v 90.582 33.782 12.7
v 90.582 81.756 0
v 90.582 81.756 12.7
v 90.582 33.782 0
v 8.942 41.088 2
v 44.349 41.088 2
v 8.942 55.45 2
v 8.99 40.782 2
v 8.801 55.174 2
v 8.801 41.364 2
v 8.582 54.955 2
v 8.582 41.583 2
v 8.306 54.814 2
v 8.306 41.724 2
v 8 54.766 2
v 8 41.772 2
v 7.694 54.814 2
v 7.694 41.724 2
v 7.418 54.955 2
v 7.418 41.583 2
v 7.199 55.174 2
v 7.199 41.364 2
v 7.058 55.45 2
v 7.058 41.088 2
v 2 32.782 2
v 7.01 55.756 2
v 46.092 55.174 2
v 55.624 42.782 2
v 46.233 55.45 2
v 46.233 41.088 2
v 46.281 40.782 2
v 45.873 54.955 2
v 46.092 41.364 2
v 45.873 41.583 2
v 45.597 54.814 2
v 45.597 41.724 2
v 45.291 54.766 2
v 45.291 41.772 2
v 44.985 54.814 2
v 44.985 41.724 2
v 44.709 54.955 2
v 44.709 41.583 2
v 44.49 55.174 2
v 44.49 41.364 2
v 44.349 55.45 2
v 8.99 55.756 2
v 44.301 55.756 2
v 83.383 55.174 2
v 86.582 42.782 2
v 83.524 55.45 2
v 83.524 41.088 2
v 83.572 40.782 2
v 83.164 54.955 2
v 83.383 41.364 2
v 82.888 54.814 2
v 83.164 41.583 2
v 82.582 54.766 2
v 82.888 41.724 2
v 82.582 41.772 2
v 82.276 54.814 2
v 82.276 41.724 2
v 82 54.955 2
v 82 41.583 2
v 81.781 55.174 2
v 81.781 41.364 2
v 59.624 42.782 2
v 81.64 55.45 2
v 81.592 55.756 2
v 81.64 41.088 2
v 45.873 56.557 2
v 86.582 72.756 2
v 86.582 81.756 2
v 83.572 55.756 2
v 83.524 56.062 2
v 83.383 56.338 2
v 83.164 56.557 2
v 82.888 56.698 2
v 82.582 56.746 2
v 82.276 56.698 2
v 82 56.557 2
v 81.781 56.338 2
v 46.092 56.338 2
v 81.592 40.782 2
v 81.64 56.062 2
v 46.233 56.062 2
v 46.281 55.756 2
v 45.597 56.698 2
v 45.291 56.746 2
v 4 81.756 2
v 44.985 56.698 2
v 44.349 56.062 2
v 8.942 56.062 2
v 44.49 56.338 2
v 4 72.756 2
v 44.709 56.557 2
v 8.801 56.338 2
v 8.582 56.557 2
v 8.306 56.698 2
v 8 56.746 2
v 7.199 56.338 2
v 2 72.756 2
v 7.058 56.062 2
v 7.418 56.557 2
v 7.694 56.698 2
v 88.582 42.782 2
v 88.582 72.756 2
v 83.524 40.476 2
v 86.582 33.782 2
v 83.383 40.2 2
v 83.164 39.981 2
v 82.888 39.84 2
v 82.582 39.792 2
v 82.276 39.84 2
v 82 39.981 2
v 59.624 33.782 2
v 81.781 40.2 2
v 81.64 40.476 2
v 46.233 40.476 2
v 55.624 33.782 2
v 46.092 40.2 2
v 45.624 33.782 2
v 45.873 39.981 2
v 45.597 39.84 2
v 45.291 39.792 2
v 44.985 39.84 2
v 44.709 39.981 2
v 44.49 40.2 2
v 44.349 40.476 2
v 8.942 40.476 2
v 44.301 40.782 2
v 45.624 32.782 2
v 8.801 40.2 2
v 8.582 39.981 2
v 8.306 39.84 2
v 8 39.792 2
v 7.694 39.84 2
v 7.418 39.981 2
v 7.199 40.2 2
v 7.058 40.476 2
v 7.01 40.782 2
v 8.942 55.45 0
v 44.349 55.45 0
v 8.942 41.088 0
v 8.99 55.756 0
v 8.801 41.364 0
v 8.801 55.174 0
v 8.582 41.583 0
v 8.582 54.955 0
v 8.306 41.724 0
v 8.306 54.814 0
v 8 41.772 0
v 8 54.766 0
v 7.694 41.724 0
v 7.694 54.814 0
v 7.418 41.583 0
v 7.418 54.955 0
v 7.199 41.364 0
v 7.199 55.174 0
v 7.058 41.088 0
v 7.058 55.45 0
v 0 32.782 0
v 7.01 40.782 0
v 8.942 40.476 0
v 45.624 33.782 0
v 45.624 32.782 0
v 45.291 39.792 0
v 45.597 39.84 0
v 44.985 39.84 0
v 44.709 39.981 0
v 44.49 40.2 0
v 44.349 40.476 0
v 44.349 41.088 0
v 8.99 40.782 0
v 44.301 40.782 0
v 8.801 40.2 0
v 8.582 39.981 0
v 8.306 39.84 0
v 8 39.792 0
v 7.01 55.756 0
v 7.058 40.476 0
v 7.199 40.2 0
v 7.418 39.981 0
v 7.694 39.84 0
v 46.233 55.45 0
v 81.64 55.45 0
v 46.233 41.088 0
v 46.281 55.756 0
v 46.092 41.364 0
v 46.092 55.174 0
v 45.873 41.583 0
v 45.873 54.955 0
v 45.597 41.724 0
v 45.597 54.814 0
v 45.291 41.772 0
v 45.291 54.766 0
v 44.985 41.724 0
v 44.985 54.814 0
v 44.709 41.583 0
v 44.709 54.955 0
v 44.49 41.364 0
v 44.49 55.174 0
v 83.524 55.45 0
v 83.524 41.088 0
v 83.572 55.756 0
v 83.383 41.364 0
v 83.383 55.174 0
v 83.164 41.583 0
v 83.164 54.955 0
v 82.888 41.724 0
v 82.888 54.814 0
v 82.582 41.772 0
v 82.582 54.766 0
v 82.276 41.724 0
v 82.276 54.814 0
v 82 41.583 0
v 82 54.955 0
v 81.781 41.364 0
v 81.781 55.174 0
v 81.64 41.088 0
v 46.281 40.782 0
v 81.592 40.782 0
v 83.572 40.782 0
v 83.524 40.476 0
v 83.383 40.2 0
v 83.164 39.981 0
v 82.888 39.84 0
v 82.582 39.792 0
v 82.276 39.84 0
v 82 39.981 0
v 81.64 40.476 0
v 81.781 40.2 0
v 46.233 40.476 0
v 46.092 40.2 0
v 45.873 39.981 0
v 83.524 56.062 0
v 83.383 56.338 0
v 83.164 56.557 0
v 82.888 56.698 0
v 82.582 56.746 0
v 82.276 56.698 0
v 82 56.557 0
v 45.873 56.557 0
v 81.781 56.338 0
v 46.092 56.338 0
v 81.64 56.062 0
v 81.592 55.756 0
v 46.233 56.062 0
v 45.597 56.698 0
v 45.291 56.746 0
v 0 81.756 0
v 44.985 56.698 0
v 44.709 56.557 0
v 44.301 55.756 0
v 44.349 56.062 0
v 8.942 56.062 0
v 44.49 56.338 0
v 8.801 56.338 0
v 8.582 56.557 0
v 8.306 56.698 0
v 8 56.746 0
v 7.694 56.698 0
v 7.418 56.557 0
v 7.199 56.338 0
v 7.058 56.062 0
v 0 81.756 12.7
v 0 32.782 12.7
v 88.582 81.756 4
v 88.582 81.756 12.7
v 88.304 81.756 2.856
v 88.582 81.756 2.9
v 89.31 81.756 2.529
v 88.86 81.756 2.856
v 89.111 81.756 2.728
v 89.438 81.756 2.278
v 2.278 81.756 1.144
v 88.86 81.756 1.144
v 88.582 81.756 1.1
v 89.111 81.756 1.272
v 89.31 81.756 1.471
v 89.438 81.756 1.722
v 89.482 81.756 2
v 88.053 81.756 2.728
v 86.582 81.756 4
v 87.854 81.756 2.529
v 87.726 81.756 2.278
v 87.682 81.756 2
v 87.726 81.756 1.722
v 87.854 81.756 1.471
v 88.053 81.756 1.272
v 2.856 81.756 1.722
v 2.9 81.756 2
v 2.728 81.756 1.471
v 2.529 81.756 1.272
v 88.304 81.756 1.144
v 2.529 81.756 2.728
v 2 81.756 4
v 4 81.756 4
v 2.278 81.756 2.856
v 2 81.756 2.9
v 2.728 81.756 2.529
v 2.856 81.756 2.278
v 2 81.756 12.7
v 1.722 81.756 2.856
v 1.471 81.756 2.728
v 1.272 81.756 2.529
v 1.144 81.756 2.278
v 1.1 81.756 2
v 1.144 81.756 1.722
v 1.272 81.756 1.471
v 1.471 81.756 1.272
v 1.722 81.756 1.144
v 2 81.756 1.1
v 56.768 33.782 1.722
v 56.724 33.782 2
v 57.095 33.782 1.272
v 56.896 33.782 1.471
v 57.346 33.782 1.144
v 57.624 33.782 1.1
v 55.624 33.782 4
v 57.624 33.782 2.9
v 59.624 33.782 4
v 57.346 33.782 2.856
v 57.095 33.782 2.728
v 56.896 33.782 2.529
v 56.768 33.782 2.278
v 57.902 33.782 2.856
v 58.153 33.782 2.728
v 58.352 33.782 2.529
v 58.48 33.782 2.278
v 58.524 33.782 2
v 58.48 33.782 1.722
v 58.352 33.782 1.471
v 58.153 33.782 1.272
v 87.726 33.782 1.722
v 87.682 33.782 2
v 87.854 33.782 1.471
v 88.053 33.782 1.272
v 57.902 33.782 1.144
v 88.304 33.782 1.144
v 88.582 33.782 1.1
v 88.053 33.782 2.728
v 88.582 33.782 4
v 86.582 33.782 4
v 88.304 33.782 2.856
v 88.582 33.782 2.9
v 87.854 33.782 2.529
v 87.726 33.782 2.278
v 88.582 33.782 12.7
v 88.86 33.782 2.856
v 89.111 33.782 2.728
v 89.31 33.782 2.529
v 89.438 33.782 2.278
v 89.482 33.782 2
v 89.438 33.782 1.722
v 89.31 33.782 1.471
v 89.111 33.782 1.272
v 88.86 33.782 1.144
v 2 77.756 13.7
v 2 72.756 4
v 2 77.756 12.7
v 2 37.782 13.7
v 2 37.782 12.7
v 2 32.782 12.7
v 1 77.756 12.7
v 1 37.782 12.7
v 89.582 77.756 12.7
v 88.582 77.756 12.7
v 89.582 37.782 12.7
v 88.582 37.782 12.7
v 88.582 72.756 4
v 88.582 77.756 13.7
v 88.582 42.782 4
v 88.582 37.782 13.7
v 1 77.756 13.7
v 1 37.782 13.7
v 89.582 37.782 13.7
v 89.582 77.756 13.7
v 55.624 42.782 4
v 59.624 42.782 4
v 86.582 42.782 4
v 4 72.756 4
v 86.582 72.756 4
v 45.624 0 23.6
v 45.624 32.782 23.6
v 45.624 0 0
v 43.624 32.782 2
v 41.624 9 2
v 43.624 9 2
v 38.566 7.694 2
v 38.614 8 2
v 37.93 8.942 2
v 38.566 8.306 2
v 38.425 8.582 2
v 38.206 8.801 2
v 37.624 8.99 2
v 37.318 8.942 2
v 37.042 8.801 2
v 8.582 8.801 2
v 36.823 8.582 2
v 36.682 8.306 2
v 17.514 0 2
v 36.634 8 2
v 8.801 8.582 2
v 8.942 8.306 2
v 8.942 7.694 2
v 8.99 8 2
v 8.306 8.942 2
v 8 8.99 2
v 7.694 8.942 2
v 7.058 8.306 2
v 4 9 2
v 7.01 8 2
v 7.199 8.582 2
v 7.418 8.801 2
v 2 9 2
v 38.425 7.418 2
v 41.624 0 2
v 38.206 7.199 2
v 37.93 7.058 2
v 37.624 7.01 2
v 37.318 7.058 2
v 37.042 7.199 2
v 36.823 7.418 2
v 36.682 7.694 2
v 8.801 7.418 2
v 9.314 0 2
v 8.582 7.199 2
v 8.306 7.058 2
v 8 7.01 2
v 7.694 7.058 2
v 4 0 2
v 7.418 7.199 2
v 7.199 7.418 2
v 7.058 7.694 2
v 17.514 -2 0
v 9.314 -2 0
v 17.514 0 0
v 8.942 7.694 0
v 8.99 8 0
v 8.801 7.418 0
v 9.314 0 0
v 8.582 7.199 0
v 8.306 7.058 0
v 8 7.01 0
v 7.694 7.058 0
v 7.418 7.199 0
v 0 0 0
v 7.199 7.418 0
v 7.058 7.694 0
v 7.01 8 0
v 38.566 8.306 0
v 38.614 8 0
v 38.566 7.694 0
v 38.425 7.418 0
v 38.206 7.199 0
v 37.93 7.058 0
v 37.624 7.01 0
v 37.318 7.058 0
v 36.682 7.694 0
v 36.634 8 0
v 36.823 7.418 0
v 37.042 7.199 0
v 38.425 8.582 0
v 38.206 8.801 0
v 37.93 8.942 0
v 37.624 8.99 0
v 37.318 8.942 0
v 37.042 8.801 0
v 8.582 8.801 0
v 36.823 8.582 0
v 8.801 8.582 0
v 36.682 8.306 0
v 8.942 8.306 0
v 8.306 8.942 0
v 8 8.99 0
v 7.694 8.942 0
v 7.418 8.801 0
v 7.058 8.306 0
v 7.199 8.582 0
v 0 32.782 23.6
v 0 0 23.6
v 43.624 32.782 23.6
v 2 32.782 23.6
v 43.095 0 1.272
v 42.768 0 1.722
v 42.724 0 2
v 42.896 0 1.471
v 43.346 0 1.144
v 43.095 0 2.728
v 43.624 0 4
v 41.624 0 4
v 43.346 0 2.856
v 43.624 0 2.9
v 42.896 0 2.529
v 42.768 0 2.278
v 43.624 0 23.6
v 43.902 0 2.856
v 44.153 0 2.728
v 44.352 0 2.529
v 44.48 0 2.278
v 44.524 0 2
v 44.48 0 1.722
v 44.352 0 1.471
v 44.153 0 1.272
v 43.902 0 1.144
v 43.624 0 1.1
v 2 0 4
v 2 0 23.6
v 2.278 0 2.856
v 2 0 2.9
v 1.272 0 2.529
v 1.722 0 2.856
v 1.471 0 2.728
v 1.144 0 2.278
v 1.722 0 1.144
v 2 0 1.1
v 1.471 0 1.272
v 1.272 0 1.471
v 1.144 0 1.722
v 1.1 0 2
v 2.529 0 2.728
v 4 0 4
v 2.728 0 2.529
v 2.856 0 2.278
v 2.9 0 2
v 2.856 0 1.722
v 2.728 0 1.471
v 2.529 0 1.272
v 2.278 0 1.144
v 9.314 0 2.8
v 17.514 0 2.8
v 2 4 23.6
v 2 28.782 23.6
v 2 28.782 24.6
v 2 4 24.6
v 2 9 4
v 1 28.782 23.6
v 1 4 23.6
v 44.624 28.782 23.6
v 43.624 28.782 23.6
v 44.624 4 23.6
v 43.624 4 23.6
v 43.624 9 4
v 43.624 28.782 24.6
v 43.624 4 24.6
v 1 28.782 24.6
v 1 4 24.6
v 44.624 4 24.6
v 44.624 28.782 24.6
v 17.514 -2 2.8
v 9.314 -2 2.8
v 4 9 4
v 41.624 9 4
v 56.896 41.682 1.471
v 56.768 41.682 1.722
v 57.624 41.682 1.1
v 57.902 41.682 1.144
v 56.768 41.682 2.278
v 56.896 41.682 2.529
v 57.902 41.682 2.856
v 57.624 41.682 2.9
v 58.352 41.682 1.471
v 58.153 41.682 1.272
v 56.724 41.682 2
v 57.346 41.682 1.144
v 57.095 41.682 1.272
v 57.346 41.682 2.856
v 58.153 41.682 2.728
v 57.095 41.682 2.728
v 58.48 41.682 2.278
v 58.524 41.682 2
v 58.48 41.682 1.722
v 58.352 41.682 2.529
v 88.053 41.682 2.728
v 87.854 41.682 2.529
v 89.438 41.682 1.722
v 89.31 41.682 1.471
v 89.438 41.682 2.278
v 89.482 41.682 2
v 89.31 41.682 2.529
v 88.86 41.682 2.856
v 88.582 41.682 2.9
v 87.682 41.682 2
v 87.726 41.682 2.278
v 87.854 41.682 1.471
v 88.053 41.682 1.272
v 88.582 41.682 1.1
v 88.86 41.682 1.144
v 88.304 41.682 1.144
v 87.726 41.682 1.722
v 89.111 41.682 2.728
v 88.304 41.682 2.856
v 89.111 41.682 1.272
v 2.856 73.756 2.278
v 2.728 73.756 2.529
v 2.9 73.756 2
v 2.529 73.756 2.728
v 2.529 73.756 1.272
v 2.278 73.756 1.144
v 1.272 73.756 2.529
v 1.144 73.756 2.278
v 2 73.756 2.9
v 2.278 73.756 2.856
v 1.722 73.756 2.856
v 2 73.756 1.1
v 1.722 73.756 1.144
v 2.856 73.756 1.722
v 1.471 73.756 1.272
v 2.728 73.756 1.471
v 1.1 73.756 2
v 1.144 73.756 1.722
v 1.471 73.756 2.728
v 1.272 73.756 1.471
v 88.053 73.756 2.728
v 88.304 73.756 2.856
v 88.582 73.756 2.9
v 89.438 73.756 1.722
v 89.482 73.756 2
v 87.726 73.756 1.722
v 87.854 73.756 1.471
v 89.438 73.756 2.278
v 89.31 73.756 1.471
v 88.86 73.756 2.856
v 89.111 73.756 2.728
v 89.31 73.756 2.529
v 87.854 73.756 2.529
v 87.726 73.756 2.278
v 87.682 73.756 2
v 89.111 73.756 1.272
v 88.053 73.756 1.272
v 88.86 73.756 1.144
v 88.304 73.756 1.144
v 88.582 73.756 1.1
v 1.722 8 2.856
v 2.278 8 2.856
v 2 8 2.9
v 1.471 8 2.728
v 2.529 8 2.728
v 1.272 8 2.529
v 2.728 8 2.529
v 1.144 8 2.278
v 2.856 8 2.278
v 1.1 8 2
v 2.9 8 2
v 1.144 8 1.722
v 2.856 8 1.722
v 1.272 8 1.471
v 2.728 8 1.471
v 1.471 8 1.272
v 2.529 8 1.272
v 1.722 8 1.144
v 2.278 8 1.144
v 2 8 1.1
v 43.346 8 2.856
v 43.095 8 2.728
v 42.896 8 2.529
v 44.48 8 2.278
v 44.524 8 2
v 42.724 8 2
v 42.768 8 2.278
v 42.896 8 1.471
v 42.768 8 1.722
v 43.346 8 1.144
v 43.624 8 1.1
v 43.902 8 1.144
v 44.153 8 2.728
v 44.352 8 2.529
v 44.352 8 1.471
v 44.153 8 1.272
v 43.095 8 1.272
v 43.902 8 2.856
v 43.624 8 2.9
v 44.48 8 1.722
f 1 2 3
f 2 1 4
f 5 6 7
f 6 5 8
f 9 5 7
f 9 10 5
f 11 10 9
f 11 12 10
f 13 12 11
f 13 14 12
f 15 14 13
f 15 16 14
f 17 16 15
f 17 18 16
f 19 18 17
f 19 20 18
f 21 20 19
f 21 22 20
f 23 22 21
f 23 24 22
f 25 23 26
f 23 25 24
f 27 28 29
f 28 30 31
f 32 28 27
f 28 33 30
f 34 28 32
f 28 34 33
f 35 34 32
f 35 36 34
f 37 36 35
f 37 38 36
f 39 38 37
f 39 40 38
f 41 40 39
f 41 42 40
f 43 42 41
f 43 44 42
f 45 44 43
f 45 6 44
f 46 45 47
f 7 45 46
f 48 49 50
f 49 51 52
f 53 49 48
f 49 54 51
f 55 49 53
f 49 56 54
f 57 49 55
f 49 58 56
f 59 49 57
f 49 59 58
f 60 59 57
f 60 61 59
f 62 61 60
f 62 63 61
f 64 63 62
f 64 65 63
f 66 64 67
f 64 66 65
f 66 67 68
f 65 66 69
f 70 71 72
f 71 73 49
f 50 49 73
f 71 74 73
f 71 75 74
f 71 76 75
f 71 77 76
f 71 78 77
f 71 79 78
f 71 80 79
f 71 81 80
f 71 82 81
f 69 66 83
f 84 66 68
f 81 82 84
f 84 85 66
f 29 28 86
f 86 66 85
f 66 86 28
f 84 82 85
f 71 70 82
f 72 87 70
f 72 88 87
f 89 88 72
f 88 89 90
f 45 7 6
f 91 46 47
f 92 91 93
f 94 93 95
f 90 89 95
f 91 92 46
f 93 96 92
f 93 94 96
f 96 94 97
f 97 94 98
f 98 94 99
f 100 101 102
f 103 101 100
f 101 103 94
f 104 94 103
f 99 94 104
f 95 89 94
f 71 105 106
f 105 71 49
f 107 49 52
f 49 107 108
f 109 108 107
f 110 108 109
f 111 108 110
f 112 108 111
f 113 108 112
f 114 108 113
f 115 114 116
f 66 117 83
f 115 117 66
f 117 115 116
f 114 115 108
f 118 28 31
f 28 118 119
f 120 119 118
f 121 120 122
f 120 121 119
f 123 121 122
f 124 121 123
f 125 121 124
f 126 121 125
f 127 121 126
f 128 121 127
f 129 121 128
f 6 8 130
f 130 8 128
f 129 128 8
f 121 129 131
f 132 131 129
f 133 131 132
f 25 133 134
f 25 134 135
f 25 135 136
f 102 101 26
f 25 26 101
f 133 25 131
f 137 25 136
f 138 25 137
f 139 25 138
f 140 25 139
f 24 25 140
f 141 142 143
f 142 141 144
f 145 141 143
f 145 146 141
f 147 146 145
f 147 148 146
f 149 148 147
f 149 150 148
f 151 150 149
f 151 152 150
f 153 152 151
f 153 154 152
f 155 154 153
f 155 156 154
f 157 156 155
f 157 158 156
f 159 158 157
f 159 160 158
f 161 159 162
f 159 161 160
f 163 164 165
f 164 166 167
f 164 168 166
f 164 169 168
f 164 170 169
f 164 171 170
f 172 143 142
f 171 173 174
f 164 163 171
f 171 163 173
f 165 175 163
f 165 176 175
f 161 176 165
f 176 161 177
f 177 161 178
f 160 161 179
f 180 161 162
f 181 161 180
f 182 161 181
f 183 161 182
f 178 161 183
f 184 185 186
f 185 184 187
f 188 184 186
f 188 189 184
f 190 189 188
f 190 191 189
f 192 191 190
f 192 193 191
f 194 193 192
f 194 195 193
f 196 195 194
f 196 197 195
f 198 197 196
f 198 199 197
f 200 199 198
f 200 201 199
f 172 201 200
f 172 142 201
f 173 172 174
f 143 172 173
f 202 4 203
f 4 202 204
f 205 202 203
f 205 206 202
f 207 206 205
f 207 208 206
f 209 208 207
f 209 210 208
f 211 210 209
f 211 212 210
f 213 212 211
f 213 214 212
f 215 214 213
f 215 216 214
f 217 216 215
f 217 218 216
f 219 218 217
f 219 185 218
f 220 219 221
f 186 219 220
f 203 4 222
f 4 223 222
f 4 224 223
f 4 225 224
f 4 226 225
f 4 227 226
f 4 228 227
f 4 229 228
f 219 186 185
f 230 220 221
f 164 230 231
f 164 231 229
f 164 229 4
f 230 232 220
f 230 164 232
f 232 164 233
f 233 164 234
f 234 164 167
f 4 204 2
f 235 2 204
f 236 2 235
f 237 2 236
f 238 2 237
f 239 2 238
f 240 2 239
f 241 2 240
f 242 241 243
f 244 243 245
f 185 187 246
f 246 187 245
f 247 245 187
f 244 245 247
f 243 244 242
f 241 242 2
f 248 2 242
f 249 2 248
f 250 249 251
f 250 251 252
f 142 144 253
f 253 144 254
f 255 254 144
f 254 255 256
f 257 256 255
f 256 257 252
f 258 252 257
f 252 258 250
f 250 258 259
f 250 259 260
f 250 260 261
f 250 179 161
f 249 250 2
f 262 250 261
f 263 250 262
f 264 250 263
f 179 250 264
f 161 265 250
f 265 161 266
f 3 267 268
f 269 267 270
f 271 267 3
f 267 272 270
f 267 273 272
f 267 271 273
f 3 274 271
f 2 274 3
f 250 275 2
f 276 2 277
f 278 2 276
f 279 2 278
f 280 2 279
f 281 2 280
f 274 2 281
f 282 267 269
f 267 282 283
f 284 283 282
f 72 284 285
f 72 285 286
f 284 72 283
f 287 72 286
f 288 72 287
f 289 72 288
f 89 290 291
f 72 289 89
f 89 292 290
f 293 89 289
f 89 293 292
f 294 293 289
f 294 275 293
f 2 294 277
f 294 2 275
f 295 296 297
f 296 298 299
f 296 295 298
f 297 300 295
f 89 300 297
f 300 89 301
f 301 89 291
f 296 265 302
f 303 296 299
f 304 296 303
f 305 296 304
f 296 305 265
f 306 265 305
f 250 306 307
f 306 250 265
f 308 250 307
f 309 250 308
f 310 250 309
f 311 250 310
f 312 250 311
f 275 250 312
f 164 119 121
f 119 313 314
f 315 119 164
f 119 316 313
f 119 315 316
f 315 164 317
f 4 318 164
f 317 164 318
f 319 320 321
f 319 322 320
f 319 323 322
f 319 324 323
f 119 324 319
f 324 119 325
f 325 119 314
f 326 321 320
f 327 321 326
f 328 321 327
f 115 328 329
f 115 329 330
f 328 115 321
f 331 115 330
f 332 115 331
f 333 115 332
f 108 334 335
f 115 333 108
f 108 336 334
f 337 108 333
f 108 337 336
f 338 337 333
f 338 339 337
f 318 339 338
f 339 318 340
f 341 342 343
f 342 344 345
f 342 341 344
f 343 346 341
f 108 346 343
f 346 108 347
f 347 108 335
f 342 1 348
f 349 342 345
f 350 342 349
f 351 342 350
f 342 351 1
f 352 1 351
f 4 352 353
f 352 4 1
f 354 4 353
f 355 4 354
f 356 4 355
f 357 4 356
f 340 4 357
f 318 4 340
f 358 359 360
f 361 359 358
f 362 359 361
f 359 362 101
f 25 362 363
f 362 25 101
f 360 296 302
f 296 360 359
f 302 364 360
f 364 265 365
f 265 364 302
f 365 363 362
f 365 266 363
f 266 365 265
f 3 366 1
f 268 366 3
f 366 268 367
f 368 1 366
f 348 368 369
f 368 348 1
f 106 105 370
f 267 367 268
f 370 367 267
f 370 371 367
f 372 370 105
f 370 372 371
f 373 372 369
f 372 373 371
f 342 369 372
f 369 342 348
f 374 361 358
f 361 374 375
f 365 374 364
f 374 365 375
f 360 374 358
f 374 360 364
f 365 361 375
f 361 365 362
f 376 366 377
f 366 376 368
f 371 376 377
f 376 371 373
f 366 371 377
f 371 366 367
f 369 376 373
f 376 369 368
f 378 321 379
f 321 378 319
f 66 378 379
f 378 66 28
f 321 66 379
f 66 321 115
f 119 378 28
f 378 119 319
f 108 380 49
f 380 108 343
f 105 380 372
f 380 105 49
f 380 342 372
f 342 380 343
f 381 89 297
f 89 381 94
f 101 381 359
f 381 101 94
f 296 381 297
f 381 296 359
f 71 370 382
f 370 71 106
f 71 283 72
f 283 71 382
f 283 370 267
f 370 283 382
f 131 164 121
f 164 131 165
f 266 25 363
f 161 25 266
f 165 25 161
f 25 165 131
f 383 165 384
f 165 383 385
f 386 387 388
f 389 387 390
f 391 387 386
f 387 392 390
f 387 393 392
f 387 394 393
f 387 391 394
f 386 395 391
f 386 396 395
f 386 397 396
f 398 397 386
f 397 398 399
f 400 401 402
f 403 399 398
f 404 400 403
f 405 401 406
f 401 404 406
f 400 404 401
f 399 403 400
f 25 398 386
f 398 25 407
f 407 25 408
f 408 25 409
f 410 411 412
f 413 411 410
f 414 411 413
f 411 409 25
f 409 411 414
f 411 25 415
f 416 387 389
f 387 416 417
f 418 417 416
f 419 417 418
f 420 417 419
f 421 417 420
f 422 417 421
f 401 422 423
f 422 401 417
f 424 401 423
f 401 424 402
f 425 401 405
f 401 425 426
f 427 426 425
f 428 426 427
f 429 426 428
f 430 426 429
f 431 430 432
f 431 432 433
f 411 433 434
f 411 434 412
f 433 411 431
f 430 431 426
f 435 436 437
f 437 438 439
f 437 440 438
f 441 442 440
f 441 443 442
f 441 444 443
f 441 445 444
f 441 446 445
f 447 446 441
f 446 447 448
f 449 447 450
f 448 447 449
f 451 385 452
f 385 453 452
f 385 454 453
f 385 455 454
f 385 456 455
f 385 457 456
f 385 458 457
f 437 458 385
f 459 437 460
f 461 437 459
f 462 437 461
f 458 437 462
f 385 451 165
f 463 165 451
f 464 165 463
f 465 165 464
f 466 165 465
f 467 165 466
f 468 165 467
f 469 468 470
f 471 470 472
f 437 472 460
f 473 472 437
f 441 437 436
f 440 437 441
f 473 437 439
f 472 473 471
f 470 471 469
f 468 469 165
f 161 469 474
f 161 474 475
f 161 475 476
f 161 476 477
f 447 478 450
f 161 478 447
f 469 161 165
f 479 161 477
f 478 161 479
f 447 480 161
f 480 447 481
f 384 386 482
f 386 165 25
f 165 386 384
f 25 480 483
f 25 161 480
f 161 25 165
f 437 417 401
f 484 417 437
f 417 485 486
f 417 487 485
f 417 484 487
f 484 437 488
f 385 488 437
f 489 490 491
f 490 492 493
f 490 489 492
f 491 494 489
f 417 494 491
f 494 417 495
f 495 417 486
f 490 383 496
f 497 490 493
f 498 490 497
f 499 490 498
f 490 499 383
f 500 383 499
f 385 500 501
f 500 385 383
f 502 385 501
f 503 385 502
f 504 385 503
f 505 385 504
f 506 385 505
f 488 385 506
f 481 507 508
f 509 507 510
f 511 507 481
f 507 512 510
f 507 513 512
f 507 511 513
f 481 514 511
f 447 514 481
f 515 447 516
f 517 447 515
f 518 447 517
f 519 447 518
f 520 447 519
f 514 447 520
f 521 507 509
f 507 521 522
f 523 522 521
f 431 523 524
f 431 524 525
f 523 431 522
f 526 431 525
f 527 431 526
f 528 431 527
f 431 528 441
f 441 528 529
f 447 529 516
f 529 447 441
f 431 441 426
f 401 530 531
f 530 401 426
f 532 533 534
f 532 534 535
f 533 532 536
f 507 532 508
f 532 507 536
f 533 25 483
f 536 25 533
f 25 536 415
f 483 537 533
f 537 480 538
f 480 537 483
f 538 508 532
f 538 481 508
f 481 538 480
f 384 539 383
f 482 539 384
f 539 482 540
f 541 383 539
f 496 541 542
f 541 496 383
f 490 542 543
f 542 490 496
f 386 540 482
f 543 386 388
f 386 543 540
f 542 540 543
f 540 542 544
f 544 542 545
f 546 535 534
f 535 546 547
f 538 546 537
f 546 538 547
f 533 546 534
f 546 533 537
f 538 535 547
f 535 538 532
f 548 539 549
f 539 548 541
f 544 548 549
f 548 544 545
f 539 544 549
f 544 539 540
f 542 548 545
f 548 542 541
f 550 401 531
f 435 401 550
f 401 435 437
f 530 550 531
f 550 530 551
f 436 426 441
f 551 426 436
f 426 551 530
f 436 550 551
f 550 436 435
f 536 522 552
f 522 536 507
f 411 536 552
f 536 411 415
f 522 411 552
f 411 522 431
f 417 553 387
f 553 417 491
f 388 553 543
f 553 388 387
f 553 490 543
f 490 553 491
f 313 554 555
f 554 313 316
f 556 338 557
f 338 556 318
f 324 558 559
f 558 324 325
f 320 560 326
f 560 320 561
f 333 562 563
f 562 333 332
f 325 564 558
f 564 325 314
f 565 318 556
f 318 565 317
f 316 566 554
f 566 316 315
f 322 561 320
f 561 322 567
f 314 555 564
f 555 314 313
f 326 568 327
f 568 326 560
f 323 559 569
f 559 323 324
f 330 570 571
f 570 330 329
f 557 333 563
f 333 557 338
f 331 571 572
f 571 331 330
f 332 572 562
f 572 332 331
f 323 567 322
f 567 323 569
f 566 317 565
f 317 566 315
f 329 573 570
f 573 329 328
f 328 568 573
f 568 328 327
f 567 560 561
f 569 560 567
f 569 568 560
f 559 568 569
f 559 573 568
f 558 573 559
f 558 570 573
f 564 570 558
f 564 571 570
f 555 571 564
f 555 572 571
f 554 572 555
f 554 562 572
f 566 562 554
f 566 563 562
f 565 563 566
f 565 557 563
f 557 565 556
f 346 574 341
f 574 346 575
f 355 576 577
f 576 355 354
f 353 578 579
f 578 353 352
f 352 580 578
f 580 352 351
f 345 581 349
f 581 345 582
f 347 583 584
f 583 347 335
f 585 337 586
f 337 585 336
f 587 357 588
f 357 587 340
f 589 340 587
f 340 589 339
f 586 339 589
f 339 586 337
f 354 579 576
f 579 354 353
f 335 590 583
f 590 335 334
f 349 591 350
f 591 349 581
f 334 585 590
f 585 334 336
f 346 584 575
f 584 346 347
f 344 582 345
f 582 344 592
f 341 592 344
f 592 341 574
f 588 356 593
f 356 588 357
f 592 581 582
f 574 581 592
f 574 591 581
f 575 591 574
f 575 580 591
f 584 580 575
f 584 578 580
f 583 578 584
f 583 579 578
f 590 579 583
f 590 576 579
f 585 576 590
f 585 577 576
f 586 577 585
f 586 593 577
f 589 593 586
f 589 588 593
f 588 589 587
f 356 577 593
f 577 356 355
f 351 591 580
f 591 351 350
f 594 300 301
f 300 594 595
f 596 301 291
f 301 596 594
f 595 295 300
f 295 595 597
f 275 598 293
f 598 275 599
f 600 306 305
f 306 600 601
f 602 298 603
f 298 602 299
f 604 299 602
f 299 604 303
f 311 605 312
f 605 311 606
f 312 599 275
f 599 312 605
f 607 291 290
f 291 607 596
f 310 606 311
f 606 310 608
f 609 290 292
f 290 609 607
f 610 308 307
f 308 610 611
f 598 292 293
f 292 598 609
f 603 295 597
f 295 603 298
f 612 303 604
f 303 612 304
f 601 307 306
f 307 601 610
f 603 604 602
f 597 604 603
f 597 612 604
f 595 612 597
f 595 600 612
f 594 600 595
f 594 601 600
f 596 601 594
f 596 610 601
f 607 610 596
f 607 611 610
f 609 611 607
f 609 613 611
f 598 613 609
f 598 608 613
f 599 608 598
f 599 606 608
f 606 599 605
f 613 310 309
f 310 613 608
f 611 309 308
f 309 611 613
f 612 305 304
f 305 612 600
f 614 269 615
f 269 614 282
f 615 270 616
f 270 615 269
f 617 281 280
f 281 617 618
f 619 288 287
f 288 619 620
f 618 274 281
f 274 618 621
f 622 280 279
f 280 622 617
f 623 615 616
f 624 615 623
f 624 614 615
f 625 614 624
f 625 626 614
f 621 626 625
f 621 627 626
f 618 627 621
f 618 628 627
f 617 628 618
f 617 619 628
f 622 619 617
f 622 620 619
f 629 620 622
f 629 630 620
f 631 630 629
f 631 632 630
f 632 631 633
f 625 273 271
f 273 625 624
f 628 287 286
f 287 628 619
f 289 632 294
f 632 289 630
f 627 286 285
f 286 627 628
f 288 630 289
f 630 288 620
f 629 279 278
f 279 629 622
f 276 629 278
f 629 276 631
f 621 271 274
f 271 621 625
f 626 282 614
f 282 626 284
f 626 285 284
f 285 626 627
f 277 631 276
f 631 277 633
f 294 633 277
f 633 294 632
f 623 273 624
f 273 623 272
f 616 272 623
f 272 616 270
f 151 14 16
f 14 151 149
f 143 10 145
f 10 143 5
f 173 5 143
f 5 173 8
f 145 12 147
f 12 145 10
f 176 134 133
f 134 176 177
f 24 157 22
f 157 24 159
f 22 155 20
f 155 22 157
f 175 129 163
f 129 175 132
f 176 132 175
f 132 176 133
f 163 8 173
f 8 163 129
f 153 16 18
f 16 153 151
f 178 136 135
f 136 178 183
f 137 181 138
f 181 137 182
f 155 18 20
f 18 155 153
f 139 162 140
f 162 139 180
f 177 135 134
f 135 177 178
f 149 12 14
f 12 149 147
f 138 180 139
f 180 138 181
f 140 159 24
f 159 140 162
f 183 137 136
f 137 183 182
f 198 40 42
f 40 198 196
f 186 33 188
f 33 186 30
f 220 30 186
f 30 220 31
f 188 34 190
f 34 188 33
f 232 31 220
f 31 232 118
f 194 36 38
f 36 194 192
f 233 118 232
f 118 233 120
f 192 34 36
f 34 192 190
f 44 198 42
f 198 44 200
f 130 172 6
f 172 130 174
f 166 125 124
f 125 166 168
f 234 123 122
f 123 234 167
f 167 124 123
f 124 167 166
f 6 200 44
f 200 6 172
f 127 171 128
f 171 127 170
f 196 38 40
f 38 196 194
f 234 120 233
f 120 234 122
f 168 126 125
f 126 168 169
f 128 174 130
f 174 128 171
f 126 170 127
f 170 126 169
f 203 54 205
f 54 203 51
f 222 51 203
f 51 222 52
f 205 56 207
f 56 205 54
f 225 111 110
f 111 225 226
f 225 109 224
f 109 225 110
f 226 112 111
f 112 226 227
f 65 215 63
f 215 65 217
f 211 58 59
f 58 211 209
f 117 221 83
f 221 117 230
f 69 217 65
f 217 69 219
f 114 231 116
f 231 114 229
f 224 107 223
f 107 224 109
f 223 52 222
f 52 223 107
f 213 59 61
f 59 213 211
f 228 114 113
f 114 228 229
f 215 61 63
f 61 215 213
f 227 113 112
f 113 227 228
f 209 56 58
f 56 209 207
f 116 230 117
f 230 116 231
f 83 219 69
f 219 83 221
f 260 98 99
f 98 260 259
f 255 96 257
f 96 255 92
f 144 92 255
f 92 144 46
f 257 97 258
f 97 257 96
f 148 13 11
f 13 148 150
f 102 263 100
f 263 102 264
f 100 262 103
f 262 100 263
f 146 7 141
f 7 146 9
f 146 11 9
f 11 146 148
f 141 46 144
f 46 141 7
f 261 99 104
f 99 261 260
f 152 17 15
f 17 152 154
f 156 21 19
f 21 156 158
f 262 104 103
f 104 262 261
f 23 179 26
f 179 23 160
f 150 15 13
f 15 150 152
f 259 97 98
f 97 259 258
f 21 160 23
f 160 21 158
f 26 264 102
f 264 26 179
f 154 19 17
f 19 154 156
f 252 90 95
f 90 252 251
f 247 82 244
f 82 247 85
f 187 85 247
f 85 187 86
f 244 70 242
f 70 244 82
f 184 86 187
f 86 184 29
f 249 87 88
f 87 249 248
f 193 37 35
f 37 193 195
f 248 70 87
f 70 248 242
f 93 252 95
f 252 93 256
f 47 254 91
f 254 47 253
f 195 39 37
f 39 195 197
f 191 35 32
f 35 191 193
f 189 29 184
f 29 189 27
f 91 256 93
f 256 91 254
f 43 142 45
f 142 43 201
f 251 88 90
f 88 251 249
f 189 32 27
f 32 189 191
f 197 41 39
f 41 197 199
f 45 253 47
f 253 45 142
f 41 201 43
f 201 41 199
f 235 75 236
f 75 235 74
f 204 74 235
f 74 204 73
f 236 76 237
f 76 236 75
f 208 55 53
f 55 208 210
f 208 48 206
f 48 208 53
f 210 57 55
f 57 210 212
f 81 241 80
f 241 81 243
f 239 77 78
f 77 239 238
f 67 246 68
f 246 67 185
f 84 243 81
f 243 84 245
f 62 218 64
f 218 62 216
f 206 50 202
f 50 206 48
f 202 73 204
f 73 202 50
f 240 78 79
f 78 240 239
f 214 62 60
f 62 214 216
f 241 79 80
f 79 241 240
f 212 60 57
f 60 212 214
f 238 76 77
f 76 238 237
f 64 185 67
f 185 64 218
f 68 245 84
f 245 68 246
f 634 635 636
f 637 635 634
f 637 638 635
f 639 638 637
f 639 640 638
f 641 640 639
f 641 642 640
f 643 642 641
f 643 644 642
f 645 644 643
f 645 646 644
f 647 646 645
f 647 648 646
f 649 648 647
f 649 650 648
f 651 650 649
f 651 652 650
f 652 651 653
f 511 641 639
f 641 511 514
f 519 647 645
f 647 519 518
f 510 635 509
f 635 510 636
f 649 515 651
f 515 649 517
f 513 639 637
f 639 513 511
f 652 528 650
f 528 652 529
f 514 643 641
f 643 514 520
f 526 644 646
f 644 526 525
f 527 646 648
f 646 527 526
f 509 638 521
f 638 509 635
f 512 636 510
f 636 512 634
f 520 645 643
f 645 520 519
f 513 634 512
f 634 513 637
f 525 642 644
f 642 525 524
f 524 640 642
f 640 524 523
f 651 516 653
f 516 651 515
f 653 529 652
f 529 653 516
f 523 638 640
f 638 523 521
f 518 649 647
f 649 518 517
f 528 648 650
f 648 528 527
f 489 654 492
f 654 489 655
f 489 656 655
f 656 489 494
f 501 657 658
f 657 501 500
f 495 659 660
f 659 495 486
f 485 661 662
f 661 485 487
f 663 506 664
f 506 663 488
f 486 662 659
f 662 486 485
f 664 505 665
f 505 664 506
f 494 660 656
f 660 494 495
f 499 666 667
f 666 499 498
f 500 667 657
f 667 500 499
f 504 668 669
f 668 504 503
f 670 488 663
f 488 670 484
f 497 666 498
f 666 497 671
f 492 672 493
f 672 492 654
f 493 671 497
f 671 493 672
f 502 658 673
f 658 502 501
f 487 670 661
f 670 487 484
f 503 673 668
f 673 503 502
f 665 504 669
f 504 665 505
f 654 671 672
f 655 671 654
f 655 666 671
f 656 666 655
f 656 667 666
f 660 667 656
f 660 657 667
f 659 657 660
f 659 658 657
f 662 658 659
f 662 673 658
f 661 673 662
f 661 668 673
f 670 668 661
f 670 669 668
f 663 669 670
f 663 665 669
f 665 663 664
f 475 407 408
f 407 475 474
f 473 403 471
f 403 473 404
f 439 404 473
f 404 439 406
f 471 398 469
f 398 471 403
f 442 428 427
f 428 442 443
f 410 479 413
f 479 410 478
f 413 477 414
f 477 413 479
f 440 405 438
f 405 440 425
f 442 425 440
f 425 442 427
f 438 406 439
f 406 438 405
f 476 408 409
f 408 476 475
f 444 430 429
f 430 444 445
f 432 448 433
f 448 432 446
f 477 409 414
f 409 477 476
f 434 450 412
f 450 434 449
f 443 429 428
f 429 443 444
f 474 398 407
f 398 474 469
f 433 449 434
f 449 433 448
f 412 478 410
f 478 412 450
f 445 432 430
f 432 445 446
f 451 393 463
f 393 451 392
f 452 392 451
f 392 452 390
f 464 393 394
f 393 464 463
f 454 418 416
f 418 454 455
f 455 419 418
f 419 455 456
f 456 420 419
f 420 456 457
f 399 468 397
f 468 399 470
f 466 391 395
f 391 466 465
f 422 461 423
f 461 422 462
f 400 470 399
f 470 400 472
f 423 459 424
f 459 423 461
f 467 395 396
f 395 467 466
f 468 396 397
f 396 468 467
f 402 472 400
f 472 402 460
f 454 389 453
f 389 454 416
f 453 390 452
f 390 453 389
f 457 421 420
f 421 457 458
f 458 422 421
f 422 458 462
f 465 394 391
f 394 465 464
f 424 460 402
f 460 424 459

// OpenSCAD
// file: ../lib/ssd1306.scad
/*
 * SPDX-FileCopyrightText: 2022-2024 Rafael G. Martins <rafael@rafaelmartins.eng.br>
 * SPDX-License-Identifier: CERN-OHL-S-2.0
 */

ssd1306_pcb_thickness = 1.6;
ssd1306_pcb_base_height = 2;
ssd1306_pcb_base_d = 4;
ssd1306_pcb_base_screw_d = 1.8;
ssd1306_pcb_base_spacing_x = 23.5;
ssd1306_pcb_base_spacing_y = 23.8;
ssd1306_screen_width = 24.5;
ssd1306_screen_height = 13;
ssd1306_screen_distance_x = (ssd1306_pcb_base_spacing_x - ssd1306_screen_width) / 2;
ssd1306_screen_distance_y = 3.5;
ssd1306_pin_distance_y = 0.45;


module ssd1306_add(thickness) {
    translate([-ssd1306_pcb_base_d / 2, -ssd1306_pcb_base_d / 2, 0])
        cube([ssd1306_pcb_base_spacing_x + ssd1306_pcb_base_d,
              ssd1306_pcb_base_spacing_y + ssd1306_pcb_base_d,
              thickness]);

    for(i=[0:1])
        for(j=[0:1])
            translate([i * ssd1306_pcb_base_spacing_x, j * ssd1306_pcb_base_spacing_y, thickness])
                cylinder(ssd1306_pcb_base_height, d=ssd1306_pcb_base_d, $fn=20);
}


module ssd1306_sub(thickness) {
    translate([ssd1306_screen_distance_x, ssd1306_screen_distance_y, 0])
        cube([ssd1306_screen_width, ssd1306_screen_height, thickness]);

    for(i=[0:1])
        for(j=[0:1])
            translate([i * ssd1306_pcb_base_spacing_x, j * ssd1306_pcb_base_spacing_y, thickness])
                cylinder(ssd1306_pcb_base_height, d=ssd1306_pcb_base_screw_d, $fn=20);
}
// file: settings.scad
/*
 * SPDX-FileCopyrightText: 2024 Rafael G. Martins <rafael@rafaelmartins.eng.br>
 * SPDX-License-Identifier: CERN-OHL-S-2.0
 */

include <../lib/ssd1306.scad>

screw_d = 2;
screw_h = 8;
thickness = 2;
gap = 0;

front_screw_padding = 3.5;

pcb_base_d = 5;
pcb_base_screw_d = 1.8;
pcb_screw_padding = 2.54;
pcb_thickness = 1.6;

pcb_gap = 1;
pcb_padding_x = thickness + pcb_gap;
pcb_padding_y = thickness + pcb_gap;

display_pcb_length = 39.624;
display_pcb_width = 33.782;

display_pcb0_x = pcb_padding_x;
display_pcb0_y = pcb_padding_y;

display_length = display_pcb_length + 2 * pcb_padding_x;
display_width = display_pcb_width + pcb_padding_y;

switches_pcb_length = 84.582;
switches_pcb_width = 45.974;

switches_length = switches_pcb_length + 2 * pcb_padding_x;
switches_width = switches_pcb_width + 2 * pcb_padding_y;

switches_pcb_base_distance_x = 39.751;
switches_pcb_base_distance_y = 20.447;

oled_socket_height = 8.5;
oled_pin0_y = 5.334;
oled0_x = (display_length - ssd1306_pcb_base_spacing_x) / 2;
oled0_y = display_pcb0_y + oled_pin0_y + ssd1306_pin_distance_y;

display_pcb_base_distance = 34.544;
display_pcb_base_height = 2.8 + oled_socket_height + ssd1306_pcb_thickness + ssd1306_pcb_base_height;

switches_pcb_base_height = 6 - thickness;

usb_height = 4.4;
usb_width = 8.2;
usb_distance_x = pcb_padding_x + 29.210 - usb_width / 2;
usb_distance_z = thickness + display_pcb_base_height + pcb_thickness - 0.1;

display_height = usb_distance_z + usb_height + 0.8 + thickness;
display_height_in = display_pcb_base_height - switches_pcb_base_height - thickness;

switches_height = display_height - display_pcb_base_height + switches_pcb_base_height;

led0_x = 37.211;
led0_y = 15.24;
led_d = 3.2;

key_dim = 16;
key_distance = 19.304;
key0_x = 13.335 - key_dim / 2;
key0_y = key0_x;

base_screw_d = 1.8;
base_screw_h = 5;
base_screw_padding = 8;
base_screw_padding_bottom = 25;

base_length = switches_length;
base_width = display_width + switches_width - pcb_gap - thickness;
base_height = 16;

back_screw3_padding = 10;
// file: ../lib/screw-base.scad
// SPDX-FileCopyrightText: 2022-2024 Rafael G. Martins <rafael@rafaelmartins.eng.br>
// SPDX-License-Identifier: CERN-OHL-S-2.0

function screw_base_dim(screw_d) = screw_d + 2;
function screw_base_height(screw_h) = screw_h + 1;


module screw_base_add(screw_d, screw_h) {
    cube([screw_base_dim(screw_d), screw_base_dim(screw_d), screw_base_height(screw_h)]);
}


module screw_base_sub(screw_d, screw_h) {
    translate([screw_base_dim(screw_d) / 2, screw_base_dim(screw_d) / 2, 0])
        cylinder(screw_h, d=screw_d - 0.2, $fn=20);
}
// main file
/*
 * SPDX-FileCopyrightText: 2024 Rafael G. Martins <rafael@rafaelmartins.eng.br>
 * SPDX-License-Identifier: CERN-OHL-S-2.0
 */

include <../lib/screw-base.scad>
include <settings.scad>

display_width_ = display_width - 2 * (thickness + gap);
display_height_ = display_height - thickness - gap;

switches_width_ = switches_width - 2 * (thickness + gap);
switches_height_ = switches_height - thickness - gap;


difference() {
    union() {
        cube([display_length, display_width_, thickness]);
        cube([thickness, display_width_, display_height_]);
        translate([display_length - thickness, 0, 0])
            cube([thickness, display_width_, display_height_]);

        translate([thickness / 2, 4, display_height_])
            cube([thickness / 2, display_width_ - 8, thickness / 2]);
        translate([display_length - thickness, 4, display_height_])
            cube([thickness / 2, display_width_ - 8, thickness / 2]);

        translate([display_length - usb_distance_x - usb_width + gap, -thickness - gap, 0])
            cube([usb_width - 2 * gap, thickness + gap, display_height - usb_distance_z - usb_height]);

        rotate([-90, -90, 0])
            screw_base_add(screw_d, screw_h);
        translate([display_length, 0, 0])
            rotate([-90, 180, 0])
                screw_base_add(screw_d, screw_h);

        translate([0, display_width_, 0]) {
            cube([display_length, 2 * gap + pcb_gap, thickness]);
            cube([thickness, 2 * gap + pcb_gap, switches_height_]);
            
            translate([0, 2 * gap + pcb_gap, 0]) {
                cube([switches_length, switches_width_, thickness]);
                cube([thickness, switches_width_, switches_height_]);
                translate([switches_length - thickness, 0, 0])
                    cube([thickness, switches_width_, switches_height_]);

                translate([thickness / 2, 4, switches_height_])
                    cube([thickness / 2, switches_width_ - 8, thickness / 2]);
                translate([switches_length - thickness, 4, switches_height_])
                    cube([thickness / 2, switches_width_ - 8, thickness / 2]);

                translate([display_length + back_screw3_padding, 0, 0])
                    rotate([-90, -90, 0])
                        screw_base_add(screw_d, screw_h);
                translate([switches_length, 0, 0])
                    rotate([-90, 180, 0])
                        screw_base_add(screw_d, screw_h);
                
                translate([0, switches_width_, 0])
                    rotate([90, 0, 0])
                        screw_base_add(screw_d, screw_h);
                translate([switches_length, switches_width_, 0])
                    rotate([90, -90, 0])
                        screw_base_add(screw_d, screw_h);
            }
        }
    }

    rotate([-90, -90, 0])
        screw_base_sub(screw_d, screw_h);
    translate([display_length, 0, 0])
        rotate([-90, 180, 0])
            screw_base_sub(screw_d, screw_h);

    translate([0, display_width_ + 2 * gap + pcb_gap, 0]) {
        translate([display_length + back_screw3_padding, -0.1, 0]) // workaround
            rotate([-90, -90, 0])
                screw_base_sub(screw_d, screw_h);
        translate([switches_length, -0.1, 0]) // workaround
            rotate([-90, 180, 0])
                screw_base_sub(screw_d, screw_h);
        translate([0, switches_width_, 0])
            rotate([90, 0, 0])
                screw_base_sub(screw_d, screw_h);
        translate([switches_length, switches_width_, 0])
            rotate([90, -90, 0])
                screw_base_sub(screw_d, screw_h);
    }

    translate([base_screw_padding, base_screw_padding, 0])
        cylinder(h=base_screw_h, d=base_screw_d * 1.1, $fn=20);
    translate([display_length - base_screw_padding, base_screw_padding, 0])
        cylinder(h=base_screw_h, d=base_screw_d * 1.1, $fn=20);

    translate([0, display_width_, 0]) {
        translate([base_screw_padding, base_screw_padding, 0])
            cylinder(h=base_screw_h, d=base_screw_d * 1.1, $fn=20);
        translate([switches_length / 2, base_screw_padding, 0])
            cylinder(h=base_screw_h, d=base_screw_d * 1.1, $fn=20);
        translate([switches_length - base_screw_padding, base_screw_padding, 0])
            cylinder(h=base_screw_h, d=base_screw_d * 1.1, $fn=20);
        translate([base_screw_padding, switches_width_ - base_screw_padding_bottom, 0])
            cylinder(h=base_screw_h, d=base_screw_d * 1.1, $fn=20);
        translate([switches_length / 2, switches_width_ - base_screw_padding_bottom, 0])
            cylinder(h=base_screw_h, d=base_screw_d * 1.1, $fn=20);
        translate([switches_length - base_screw_padding, switches_width_ - base_screw_padding_bottom, 0])
            cylinder(h=base_screw_h, d=base_screw_d * 1.1, $fn=20);
    }
}
